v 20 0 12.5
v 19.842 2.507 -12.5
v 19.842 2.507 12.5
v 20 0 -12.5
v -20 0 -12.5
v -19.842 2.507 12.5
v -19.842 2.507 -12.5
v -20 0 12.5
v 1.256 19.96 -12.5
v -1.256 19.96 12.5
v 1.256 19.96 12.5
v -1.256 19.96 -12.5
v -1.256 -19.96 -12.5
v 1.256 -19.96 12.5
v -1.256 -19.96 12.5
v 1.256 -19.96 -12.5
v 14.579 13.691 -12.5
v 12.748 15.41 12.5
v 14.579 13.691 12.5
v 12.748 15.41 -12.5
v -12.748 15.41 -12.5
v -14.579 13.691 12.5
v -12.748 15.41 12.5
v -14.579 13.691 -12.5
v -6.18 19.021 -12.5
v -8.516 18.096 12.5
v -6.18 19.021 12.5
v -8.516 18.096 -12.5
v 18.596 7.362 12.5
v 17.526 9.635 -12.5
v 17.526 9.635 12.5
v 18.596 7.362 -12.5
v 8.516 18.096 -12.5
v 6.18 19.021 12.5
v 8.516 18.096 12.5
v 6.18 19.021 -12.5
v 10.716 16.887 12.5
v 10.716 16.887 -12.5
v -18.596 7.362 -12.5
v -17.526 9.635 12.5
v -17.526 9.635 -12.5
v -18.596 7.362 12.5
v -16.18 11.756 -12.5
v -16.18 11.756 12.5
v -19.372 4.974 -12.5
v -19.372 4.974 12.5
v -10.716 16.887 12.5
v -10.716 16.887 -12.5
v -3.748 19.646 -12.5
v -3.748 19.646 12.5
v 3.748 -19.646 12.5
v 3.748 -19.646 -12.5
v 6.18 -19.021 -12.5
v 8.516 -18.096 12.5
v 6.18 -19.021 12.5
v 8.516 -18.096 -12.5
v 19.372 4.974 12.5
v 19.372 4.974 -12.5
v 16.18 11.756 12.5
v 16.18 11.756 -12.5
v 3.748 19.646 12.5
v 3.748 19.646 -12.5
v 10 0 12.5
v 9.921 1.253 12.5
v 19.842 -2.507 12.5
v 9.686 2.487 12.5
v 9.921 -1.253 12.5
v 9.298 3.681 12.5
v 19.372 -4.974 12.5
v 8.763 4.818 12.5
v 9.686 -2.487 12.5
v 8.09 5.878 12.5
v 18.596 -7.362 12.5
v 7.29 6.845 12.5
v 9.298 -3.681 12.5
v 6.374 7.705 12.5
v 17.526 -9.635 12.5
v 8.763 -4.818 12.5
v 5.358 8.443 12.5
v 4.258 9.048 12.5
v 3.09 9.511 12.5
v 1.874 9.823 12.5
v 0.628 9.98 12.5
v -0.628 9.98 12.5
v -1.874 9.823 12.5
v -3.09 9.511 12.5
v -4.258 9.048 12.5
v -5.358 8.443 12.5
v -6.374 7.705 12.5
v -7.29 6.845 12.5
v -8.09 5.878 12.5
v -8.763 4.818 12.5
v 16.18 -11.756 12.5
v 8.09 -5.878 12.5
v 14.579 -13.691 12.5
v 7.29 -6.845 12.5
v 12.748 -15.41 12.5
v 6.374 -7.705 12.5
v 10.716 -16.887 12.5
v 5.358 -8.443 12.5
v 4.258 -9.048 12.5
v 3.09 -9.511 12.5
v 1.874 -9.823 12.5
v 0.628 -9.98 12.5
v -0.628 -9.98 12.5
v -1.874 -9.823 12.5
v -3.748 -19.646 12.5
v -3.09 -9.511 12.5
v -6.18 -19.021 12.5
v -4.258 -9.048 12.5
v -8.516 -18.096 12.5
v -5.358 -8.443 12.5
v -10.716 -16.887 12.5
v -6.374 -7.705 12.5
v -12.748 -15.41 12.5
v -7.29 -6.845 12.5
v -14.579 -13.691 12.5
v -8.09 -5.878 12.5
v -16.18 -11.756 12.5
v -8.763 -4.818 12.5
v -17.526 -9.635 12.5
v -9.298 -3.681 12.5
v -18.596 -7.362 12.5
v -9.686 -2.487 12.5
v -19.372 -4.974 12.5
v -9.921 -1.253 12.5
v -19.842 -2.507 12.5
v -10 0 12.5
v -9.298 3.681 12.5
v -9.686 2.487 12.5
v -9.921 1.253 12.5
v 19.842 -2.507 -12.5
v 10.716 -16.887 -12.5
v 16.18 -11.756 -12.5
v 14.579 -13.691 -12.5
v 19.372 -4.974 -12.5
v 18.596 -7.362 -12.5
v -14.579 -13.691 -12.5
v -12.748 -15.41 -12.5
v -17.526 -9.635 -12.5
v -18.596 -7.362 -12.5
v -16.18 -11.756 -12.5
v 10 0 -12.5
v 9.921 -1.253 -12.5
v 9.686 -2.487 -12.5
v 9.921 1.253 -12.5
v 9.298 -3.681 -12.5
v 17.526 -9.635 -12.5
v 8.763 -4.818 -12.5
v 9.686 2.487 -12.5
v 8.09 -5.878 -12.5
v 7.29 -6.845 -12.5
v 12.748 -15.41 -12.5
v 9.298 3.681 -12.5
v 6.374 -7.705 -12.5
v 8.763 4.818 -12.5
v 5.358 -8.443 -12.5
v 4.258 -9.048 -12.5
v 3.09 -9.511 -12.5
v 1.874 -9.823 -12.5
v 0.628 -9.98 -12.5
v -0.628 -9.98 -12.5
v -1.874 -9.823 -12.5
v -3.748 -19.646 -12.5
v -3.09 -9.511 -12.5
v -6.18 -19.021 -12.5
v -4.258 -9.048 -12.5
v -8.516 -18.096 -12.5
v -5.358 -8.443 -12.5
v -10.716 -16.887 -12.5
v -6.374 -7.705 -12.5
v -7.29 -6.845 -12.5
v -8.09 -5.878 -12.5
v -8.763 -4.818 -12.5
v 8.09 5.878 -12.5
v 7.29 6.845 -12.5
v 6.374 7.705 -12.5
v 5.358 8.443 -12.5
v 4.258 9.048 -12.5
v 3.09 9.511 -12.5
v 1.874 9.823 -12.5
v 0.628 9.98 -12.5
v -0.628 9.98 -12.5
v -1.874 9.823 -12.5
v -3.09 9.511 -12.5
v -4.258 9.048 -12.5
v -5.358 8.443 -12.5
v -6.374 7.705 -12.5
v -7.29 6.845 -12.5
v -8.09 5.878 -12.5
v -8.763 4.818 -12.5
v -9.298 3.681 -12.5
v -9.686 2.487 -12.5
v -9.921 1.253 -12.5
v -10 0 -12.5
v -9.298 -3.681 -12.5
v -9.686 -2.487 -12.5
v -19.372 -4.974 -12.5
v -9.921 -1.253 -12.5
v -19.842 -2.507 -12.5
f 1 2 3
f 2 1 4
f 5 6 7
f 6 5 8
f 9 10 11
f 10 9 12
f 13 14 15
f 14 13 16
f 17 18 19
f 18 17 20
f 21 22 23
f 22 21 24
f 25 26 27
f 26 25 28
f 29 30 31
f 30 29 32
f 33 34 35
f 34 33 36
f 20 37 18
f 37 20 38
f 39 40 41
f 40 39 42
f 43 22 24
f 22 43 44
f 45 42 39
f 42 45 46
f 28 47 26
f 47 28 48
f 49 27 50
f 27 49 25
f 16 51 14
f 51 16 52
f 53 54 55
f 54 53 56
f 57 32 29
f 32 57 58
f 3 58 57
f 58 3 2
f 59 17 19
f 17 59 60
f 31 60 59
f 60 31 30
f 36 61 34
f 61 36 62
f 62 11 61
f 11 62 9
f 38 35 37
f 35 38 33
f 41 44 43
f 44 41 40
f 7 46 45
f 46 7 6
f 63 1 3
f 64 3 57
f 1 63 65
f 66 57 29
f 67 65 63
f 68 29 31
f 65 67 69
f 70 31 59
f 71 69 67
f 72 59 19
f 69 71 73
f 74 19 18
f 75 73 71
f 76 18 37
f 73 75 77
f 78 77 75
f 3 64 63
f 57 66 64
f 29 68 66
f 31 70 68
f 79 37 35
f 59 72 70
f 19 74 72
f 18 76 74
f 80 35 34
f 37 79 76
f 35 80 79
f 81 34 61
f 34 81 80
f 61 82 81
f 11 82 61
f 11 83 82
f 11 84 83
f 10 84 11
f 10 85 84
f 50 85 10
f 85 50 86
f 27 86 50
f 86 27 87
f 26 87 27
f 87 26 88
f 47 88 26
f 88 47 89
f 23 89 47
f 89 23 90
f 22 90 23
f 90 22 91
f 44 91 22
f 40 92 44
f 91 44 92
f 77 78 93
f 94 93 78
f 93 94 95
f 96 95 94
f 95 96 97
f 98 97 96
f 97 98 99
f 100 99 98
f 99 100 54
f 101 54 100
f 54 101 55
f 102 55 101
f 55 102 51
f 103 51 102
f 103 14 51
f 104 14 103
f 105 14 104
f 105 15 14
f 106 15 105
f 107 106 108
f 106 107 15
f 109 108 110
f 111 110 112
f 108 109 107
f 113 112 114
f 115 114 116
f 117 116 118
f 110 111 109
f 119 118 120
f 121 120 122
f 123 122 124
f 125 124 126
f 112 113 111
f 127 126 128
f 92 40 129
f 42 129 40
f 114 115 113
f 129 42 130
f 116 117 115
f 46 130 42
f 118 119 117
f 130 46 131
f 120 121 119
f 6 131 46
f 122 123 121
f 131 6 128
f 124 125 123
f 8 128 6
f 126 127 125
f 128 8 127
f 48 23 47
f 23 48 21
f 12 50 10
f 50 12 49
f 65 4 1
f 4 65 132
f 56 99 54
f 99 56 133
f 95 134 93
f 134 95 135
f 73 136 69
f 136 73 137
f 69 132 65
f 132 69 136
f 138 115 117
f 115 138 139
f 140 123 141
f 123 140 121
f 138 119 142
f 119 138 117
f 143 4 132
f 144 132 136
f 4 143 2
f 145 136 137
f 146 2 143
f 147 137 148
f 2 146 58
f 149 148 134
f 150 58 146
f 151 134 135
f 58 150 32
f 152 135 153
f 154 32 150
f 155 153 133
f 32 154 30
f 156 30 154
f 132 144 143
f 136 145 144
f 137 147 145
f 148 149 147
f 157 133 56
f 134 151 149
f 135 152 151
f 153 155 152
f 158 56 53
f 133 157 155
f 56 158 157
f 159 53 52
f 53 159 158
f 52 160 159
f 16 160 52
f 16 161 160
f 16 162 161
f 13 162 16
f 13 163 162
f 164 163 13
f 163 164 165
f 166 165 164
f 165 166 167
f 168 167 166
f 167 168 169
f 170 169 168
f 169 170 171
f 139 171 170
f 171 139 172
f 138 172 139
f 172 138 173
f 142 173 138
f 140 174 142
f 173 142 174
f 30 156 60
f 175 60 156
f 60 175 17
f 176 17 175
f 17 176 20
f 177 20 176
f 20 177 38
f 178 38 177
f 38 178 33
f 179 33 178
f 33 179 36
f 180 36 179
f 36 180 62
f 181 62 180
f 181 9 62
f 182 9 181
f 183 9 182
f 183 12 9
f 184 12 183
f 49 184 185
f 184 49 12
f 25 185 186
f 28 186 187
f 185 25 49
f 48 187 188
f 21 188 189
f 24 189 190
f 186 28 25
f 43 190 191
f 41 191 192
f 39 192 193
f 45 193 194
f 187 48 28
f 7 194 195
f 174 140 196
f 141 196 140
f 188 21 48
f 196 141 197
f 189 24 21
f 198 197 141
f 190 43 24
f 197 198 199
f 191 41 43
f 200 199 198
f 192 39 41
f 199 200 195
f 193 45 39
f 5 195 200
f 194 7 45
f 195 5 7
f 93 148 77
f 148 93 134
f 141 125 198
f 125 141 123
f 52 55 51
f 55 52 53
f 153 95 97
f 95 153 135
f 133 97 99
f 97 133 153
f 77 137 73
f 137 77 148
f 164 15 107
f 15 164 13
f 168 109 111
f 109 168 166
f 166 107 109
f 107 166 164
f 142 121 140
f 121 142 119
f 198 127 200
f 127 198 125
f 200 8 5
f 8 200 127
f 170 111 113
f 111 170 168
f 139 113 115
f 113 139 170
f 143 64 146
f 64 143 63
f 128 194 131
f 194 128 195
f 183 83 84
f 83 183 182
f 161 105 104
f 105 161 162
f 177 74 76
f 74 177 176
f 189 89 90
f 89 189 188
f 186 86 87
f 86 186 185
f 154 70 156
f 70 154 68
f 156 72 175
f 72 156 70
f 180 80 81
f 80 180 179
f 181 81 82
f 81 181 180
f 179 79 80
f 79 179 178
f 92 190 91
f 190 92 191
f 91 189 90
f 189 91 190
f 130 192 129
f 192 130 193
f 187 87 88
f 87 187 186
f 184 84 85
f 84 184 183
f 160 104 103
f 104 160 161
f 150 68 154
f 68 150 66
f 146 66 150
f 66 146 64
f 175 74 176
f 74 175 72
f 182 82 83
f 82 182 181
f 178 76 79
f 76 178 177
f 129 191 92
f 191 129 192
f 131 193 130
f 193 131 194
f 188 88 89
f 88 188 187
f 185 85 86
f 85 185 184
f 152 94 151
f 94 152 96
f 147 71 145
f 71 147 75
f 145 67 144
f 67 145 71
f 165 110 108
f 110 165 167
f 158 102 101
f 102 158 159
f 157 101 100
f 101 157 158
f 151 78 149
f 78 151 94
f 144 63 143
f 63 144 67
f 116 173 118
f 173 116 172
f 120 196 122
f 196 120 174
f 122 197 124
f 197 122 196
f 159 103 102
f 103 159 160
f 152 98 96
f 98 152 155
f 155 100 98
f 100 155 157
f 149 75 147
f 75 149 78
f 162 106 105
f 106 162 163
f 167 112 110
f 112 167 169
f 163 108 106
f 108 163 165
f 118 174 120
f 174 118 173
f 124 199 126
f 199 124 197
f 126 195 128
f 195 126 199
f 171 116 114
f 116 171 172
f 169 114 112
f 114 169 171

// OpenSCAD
$fn = 50;


difference() {
	union() {
		translate(v = [0, 0, -12.5000000000]) {
			cylinder(h = 25, r = 20.0000000000);
		}
	}
	union() {
		translate(v = [0, 0, -100.0000000000]) {
			cylinder(h = 200, r = 10);
		}
	}
}
